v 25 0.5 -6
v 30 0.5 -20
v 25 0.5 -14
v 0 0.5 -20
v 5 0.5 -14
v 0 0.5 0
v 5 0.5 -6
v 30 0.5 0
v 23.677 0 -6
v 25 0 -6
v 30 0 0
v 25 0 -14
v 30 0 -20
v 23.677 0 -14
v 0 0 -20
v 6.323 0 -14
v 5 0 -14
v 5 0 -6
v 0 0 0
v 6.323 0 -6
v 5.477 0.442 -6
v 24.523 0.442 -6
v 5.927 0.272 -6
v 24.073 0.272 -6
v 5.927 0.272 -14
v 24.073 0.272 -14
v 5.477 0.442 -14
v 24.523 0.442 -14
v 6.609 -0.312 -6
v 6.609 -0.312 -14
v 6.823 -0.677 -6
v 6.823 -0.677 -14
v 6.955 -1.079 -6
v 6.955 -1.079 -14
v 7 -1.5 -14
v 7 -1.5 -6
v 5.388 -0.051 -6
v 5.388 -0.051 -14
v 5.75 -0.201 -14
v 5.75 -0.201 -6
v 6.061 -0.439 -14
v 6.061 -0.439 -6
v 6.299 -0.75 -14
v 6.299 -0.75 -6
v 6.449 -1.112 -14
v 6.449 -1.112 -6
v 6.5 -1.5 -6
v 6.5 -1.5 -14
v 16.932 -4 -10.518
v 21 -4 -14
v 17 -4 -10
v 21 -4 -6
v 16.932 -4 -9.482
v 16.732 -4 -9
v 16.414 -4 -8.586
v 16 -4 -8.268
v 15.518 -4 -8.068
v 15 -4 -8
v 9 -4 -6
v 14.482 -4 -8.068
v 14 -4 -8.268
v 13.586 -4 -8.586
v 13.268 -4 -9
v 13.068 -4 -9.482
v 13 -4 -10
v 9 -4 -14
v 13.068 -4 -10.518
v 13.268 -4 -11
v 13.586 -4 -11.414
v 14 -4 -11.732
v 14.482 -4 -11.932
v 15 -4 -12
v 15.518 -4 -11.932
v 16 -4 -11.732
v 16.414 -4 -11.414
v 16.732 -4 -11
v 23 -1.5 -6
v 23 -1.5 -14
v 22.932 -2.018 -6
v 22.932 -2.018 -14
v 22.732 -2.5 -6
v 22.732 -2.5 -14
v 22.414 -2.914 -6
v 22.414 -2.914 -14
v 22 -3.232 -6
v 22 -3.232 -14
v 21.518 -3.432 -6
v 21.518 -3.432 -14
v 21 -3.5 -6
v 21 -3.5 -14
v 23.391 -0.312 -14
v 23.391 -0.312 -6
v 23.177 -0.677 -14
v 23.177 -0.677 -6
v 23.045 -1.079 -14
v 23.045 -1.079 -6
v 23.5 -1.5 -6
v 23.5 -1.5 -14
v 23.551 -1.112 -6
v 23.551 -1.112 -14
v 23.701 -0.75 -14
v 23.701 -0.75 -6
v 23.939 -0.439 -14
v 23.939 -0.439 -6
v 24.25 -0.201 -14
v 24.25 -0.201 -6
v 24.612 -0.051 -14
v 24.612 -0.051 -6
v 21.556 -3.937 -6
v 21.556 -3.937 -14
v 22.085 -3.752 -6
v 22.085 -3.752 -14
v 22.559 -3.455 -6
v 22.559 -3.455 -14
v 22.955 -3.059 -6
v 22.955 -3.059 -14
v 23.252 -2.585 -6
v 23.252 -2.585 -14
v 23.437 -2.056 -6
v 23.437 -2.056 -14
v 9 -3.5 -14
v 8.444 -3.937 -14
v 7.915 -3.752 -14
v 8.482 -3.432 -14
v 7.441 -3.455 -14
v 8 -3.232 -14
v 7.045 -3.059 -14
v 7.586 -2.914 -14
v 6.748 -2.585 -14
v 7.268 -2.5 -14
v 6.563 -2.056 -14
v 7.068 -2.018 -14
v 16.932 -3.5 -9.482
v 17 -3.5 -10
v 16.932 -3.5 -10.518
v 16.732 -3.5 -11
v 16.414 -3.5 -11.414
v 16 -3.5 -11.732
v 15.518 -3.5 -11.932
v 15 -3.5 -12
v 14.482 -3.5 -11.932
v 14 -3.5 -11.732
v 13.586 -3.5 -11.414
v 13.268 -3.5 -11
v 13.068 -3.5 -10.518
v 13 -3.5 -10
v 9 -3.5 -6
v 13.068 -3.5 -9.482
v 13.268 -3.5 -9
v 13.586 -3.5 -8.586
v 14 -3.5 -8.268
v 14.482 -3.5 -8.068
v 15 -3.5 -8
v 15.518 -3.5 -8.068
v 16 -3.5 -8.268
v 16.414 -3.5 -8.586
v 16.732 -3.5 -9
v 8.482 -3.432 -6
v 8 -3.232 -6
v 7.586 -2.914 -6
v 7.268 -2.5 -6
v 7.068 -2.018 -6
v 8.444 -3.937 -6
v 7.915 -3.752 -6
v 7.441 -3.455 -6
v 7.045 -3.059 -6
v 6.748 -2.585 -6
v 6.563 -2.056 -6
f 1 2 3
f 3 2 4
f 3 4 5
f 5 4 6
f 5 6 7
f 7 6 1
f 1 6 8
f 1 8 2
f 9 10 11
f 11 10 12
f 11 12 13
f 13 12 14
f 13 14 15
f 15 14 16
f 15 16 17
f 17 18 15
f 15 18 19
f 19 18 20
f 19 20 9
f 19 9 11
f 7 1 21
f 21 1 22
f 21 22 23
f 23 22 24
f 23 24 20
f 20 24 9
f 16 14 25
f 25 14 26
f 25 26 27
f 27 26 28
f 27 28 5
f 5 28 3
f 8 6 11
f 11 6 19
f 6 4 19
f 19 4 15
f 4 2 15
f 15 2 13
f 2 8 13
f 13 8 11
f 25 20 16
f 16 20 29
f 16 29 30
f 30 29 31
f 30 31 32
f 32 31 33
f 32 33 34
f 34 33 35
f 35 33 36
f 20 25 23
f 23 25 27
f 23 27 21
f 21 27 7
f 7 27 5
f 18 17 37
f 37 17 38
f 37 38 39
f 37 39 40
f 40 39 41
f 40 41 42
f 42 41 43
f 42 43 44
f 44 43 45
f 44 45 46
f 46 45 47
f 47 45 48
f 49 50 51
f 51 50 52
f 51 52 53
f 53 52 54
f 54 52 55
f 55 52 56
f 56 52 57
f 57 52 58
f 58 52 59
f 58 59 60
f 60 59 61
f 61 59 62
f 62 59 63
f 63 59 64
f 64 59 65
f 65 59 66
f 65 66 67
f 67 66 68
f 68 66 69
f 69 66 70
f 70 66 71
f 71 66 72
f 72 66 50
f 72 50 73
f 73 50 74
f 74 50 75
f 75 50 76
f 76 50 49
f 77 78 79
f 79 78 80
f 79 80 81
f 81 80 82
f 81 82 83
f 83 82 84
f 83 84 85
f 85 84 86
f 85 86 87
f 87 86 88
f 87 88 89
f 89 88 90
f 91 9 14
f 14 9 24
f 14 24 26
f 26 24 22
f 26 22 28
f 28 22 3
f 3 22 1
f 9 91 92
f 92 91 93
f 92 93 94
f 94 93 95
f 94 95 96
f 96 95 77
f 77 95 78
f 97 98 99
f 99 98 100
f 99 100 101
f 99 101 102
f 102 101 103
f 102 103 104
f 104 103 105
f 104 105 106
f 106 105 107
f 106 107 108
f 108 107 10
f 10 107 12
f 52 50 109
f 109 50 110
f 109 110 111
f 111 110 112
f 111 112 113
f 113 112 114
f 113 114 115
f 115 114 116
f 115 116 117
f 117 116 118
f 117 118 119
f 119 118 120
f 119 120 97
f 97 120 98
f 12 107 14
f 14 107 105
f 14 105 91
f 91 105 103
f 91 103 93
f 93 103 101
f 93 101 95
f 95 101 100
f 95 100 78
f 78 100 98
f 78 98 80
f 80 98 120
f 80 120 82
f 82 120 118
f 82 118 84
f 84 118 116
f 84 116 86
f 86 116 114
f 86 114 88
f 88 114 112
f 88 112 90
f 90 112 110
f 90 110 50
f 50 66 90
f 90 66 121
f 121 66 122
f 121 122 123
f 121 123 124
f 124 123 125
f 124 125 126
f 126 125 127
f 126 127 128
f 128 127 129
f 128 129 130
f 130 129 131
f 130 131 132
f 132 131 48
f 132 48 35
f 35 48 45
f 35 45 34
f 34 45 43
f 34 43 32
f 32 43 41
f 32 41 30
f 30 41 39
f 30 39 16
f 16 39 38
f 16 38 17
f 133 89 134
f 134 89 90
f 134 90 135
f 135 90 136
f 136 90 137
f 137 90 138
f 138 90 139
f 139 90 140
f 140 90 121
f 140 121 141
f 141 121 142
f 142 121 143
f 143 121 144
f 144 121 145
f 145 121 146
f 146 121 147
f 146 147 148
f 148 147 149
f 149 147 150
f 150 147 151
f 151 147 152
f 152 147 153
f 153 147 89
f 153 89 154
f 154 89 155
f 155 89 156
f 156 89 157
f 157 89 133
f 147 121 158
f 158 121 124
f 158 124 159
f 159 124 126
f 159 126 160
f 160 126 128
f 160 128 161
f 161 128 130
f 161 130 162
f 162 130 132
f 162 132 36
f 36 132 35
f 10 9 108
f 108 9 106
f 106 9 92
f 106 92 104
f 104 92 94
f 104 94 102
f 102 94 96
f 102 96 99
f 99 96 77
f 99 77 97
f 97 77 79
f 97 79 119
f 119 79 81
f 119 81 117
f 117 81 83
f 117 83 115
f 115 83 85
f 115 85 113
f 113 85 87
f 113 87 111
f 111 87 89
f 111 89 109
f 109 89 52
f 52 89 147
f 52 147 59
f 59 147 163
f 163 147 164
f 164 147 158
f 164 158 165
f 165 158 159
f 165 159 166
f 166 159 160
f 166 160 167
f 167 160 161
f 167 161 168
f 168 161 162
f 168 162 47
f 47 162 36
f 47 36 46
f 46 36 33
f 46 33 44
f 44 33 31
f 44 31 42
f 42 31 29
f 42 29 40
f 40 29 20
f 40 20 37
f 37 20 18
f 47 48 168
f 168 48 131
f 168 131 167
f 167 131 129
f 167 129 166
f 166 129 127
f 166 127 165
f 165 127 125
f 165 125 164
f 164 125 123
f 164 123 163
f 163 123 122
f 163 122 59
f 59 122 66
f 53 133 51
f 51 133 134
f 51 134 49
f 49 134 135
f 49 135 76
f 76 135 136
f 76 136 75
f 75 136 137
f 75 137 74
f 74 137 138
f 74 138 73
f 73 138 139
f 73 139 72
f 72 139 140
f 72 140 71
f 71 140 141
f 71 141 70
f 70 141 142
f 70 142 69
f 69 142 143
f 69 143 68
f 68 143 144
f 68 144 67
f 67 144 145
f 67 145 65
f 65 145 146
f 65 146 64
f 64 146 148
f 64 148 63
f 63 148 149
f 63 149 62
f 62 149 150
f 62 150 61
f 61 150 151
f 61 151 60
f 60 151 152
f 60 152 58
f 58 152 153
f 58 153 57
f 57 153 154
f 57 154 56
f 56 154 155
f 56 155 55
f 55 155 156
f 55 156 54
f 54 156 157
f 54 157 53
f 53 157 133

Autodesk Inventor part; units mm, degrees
ref_plane "YZ Plane" through (0, 0, 0) normal (1, 0, 0) x (0, 1, 0)
ref_plane "XZ Plane" through (0, 0, 0) normal (0, 1, 0) x (-1, 0, 0)
sketch "Sketch1" plane through (0, 0, 0) normal (0, 1, 0) x (-1, 0, 0)
  line L0 (0, 0) -> (-30, 0)
  line L1 (-30, 0) -> (-30, -20)
  line L2 (-30, -20) -> (0, -20)
  line L3 (0, -20) -> (0, 0)
  dimension "d0" = 30
  dimension "d1" = 20
extrude "Plate1" add sketch "Sketch1" along normal blind 0.5
sketch "Sketch2" plane through (0, 0.5, 0) normal (0, 1, 0) x (1, 0, 0)
  line L0 (5, 14) -> (25, 14)
  line L1 (25, 14) -> (25, 6)
  line L2 (25, 6) -> (5, 6)
  line L3 (5, 6) -> (5, 14)
  line L4 (5, 14) -> (25, 6) construction
  line L5 (25, 14) -> (5, 6) construction
  line L6 (0, 0) -> (0, 20) projected
  line L7 (30, 0) -> (0, 0) projected
  point P0 (15, 10)
  dimension "d3" = 15
  dimension "d4" = 10
  dimension "d5" = 20
  dimension "Width" = 8
extrude "Extrusion1" cut sketch "Sketch2" against normal blind 0.5
ref_plane "Work Plane1" through (5, 0.5, -14) normal (0, 0, -1) x (-1, 0, 0)
sketch "Sketch3" plane through (5, 0.5, -14) normal (0, 0, -1) x (-1, 0, 0)
  line L0 (-20, 0) -> (0, 0) projected
  arc A0 (0, 0) -> (-2, -2) centre (0, -2) ccw
  arc A1 (-4, -4) -> (-2, -2) centre (-4, -2) ccw
  line L1 (-4, -4) -> (-16, -4)
  arc A2 (-18, -2) -> (-16, -4) centre (-16, -2) ccw
  arc A3 (-18, -2) -> (-20, 0) centre (-20, -2) ccw
  line L2 (0, 0) -> (-20, 0) projected
  arc A4 (-18.5, -2) -> (-20, -0.5) centre (-20, -2) ccw
  arc A5 (-18.5, -2) -> (-16, -4.5) centre (-16, -2) ccw
  line L3 (-16, -4.5) -> (-4, -4.5)
  arc A6 (-4, -4.5) -> (-1.5, -2) centre (-4, -2) ccw
  arc A7 (0, -0.5) -> (-1.5, -2) centre (0, -2) ccw
  line L4 (-20, -0.5) -> (-20, 0)
  line L5 (0, -0.5) -> (0, 0)
  point P0 (5, -0.5)
  dimension "d9" = 2
  dimension "d10" = 0.5
extrude "Extrusion2" add sketch "Sketch3" against normal blind 8 contours A3 A2 L1 A1 A0 L5 A7 A6 L3 A5 A4 L4
sketch "Sketch4" plane through (9, -3.5, -14) normal (0, 1, 0) x (1, 0, 0)
  circle A0 centre (6, -4) radius 2
  point P0 (-9, -14)
  dimension "d13" = 4
extrude "Extrusion3" cut sketch "Sketch4" against normal blind 0.5
equation "\"d7\" = Thickness"
equation "\"d10\" = Thickness"
equation "\"d11\" = Width"
equation "\"d14\" = Thickness"
equation "\"d2\" = Thickness"
equation "\"BendRadius\" = Thickness"
equation "\"BendReliefWidth\" = Thickness"
equation "\"BendReliefDepth\" = 0.5 * Thickness"
equation "\"CornerReliefSize\" = 4 * Thickness"
equation "\"MinimumRemnant\" = 2 * Thickness"
equation "\"TransitionRadius\" = BendRadius"
equation "\"JacobiRadiusSize\" = BendRadius"
equation "\"GapSize\" = Thickness"
equation "\"Thickness\" = 0.5"
properties part number "CE-4.1.3"
